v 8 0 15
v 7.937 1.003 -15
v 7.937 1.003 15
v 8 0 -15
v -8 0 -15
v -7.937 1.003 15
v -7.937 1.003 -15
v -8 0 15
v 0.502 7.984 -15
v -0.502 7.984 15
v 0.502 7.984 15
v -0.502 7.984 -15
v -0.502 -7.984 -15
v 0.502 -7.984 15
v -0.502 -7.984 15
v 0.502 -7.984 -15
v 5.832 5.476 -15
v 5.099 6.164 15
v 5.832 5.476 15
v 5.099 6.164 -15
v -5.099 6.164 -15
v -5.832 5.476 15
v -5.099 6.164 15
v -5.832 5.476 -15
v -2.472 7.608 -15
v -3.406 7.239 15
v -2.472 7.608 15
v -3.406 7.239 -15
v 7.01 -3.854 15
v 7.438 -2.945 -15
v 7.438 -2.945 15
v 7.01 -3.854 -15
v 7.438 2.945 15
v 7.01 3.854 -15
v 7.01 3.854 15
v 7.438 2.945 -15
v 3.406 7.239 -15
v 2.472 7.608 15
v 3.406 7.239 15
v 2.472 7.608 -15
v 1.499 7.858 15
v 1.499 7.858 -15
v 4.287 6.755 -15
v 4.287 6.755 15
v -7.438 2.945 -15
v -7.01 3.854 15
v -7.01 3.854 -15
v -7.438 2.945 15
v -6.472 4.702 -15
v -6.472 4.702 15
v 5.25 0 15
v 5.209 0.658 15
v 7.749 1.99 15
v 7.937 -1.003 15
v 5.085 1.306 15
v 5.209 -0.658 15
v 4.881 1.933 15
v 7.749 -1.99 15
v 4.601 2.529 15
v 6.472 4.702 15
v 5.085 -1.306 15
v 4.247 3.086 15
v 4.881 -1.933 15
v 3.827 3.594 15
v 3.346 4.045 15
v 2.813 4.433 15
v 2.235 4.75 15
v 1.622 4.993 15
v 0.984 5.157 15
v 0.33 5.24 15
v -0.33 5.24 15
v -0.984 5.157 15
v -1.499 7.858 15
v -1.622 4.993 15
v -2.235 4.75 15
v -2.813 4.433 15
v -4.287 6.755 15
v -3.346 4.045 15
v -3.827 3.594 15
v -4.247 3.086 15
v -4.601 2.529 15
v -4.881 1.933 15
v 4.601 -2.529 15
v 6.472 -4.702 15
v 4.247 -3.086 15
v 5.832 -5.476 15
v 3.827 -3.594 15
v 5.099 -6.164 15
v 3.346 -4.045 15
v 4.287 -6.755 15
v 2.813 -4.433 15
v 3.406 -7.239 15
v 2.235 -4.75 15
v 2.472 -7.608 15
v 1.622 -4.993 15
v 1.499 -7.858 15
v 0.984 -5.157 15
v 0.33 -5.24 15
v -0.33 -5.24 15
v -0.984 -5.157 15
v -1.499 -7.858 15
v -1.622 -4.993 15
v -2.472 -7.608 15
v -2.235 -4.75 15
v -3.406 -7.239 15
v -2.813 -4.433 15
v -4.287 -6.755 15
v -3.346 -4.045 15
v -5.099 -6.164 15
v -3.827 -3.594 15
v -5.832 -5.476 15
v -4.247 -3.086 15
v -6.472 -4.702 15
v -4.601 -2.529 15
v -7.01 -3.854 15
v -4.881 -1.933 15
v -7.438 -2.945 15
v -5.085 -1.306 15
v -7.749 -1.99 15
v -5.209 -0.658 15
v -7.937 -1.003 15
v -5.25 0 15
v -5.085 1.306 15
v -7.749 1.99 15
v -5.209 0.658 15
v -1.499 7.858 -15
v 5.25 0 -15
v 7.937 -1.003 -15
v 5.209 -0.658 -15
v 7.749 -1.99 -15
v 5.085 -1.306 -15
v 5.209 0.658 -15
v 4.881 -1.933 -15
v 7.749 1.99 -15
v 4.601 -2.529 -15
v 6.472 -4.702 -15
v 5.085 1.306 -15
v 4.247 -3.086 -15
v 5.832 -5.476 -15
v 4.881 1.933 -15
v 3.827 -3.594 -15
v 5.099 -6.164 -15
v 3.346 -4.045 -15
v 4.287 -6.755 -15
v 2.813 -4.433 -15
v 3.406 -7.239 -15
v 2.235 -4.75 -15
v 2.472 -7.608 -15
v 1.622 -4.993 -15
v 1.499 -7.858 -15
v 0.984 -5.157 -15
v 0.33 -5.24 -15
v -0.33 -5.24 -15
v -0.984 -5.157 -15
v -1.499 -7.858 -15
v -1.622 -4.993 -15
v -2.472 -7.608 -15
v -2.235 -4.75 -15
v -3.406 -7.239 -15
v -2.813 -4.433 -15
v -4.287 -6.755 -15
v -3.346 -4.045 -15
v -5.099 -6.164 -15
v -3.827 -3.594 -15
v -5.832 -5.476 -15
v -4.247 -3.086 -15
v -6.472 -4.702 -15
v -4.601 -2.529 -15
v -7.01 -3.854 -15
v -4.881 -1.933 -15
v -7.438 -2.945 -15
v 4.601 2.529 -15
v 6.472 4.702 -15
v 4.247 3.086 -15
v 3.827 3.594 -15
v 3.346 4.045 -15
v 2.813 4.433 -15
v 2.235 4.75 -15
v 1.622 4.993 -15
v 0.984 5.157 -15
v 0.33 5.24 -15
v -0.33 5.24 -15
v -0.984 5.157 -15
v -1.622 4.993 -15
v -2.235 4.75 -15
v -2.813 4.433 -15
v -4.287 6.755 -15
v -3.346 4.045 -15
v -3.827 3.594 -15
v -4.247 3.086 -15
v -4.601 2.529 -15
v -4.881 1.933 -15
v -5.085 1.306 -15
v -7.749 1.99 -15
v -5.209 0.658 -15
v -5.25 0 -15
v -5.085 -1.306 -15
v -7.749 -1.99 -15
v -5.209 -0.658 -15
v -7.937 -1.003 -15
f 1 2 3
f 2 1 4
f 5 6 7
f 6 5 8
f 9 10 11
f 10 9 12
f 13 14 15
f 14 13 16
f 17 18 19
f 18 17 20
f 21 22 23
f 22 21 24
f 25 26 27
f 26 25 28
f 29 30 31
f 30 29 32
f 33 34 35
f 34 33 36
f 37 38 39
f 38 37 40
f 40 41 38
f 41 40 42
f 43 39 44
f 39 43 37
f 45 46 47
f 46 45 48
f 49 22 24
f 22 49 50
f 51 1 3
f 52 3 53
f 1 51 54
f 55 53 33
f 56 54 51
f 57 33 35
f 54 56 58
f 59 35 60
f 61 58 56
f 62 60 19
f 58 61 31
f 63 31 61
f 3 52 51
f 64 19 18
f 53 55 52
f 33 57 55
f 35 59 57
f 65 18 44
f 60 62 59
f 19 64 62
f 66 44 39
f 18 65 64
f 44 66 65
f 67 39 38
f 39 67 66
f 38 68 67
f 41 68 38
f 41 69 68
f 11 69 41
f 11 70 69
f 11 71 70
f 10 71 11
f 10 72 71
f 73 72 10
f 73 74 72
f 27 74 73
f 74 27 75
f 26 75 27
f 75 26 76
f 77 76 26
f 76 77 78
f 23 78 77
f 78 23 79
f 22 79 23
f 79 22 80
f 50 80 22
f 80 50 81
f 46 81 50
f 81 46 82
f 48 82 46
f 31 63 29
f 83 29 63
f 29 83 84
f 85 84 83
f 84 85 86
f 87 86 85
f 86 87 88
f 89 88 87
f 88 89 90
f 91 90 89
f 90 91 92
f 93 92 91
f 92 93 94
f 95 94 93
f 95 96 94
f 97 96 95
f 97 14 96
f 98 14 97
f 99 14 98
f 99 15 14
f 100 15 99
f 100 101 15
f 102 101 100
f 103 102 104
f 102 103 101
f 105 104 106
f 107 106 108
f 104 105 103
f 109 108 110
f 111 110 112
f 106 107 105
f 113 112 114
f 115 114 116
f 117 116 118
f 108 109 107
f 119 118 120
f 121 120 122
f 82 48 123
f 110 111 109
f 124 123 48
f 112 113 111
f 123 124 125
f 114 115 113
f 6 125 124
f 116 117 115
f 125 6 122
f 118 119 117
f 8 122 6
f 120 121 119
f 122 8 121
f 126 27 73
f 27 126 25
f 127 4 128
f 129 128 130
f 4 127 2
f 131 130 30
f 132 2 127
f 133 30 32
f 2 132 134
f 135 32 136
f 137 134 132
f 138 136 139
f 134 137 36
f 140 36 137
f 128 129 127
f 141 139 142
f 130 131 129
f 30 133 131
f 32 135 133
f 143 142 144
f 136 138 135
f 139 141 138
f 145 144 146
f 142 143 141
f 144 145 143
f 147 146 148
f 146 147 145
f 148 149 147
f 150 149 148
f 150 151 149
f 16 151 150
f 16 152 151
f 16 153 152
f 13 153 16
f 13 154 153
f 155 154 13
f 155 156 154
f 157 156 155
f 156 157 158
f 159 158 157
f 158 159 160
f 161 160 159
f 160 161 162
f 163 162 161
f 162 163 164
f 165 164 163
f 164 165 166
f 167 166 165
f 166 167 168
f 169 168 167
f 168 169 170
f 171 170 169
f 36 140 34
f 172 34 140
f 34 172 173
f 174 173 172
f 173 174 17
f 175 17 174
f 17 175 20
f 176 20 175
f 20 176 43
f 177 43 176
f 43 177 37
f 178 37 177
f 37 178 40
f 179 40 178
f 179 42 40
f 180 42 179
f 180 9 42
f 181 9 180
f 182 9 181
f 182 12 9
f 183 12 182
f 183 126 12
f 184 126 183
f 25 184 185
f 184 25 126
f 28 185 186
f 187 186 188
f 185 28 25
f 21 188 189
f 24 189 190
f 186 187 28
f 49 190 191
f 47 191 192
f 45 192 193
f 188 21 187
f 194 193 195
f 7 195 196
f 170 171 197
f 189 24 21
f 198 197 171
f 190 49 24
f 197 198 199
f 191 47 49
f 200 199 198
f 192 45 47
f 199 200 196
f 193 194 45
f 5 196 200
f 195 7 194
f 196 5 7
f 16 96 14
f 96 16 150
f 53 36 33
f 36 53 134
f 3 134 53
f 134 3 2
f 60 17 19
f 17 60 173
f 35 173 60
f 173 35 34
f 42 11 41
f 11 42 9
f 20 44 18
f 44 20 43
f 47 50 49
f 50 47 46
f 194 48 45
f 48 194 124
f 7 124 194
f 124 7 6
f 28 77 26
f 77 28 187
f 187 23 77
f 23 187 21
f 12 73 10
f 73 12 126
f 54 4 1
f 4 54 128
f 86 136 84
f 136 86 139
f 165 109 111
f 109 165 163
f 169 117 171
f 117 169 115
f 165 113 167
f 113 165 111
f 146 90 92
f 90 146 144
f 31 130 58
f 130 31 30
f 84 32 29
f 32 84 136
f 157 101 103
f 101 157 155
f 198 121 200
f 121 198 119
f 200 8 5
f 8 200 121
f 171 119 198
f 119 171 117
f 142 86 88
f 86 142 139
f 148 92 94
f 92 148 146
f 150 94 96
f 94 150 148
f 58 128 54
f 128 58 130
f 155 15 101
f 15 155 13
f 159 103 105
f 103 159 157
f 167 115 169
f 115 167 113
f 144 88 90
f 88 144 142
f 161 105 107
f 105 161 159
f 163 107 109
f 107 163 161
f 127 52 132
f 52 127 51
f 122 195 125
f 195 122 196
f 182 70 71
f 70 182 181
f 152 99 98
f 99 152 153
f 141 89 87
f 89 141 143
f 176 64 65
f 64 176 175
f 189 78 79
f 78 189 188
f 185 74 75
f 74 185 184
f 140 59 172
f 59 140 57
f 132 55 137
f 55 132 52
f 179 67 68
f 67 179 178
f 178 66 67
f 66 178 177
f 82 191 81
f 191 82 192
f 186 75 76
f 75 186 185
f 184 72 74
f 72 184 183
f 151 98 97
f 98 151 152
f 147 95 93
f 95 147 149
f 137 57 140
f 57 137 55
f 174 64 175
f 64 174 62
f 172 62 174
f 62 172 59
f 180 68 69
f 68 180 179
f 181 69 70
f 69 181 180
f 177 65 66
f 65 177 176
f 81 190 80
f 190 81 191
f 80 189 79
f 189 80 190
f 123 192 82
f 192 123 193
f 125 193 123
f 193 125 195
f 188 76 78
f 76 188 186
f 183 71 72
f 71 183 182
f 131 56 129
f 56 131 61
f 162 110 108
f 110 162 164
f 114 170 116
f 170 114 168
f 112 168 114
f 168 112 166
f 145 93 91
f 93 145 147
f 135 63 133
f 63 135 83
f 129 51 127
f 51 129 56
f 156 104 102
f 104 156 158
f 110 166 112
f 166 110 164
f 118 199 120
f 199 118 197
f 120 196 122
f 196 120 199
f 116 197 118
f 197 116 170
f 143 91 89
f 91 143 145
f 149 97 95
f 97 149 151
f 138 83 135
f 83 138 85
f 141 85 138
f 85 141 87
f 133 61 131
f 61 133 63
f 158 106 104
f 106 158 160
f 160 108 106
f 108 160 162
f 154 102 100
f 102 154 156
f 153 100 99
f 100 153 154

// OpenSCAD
$fn = 50;


difference() {
	union() {
		translate(v = [0, 0, -15.0000000000]) {
			cylinder(h = 30, r = 8.0000000000);
		}
	}
	union() {
		translate(v = [0, 0, -100.0000000000]) {
			cylinder(h = 200, r = 5.2500000000);
		}
	}
}
